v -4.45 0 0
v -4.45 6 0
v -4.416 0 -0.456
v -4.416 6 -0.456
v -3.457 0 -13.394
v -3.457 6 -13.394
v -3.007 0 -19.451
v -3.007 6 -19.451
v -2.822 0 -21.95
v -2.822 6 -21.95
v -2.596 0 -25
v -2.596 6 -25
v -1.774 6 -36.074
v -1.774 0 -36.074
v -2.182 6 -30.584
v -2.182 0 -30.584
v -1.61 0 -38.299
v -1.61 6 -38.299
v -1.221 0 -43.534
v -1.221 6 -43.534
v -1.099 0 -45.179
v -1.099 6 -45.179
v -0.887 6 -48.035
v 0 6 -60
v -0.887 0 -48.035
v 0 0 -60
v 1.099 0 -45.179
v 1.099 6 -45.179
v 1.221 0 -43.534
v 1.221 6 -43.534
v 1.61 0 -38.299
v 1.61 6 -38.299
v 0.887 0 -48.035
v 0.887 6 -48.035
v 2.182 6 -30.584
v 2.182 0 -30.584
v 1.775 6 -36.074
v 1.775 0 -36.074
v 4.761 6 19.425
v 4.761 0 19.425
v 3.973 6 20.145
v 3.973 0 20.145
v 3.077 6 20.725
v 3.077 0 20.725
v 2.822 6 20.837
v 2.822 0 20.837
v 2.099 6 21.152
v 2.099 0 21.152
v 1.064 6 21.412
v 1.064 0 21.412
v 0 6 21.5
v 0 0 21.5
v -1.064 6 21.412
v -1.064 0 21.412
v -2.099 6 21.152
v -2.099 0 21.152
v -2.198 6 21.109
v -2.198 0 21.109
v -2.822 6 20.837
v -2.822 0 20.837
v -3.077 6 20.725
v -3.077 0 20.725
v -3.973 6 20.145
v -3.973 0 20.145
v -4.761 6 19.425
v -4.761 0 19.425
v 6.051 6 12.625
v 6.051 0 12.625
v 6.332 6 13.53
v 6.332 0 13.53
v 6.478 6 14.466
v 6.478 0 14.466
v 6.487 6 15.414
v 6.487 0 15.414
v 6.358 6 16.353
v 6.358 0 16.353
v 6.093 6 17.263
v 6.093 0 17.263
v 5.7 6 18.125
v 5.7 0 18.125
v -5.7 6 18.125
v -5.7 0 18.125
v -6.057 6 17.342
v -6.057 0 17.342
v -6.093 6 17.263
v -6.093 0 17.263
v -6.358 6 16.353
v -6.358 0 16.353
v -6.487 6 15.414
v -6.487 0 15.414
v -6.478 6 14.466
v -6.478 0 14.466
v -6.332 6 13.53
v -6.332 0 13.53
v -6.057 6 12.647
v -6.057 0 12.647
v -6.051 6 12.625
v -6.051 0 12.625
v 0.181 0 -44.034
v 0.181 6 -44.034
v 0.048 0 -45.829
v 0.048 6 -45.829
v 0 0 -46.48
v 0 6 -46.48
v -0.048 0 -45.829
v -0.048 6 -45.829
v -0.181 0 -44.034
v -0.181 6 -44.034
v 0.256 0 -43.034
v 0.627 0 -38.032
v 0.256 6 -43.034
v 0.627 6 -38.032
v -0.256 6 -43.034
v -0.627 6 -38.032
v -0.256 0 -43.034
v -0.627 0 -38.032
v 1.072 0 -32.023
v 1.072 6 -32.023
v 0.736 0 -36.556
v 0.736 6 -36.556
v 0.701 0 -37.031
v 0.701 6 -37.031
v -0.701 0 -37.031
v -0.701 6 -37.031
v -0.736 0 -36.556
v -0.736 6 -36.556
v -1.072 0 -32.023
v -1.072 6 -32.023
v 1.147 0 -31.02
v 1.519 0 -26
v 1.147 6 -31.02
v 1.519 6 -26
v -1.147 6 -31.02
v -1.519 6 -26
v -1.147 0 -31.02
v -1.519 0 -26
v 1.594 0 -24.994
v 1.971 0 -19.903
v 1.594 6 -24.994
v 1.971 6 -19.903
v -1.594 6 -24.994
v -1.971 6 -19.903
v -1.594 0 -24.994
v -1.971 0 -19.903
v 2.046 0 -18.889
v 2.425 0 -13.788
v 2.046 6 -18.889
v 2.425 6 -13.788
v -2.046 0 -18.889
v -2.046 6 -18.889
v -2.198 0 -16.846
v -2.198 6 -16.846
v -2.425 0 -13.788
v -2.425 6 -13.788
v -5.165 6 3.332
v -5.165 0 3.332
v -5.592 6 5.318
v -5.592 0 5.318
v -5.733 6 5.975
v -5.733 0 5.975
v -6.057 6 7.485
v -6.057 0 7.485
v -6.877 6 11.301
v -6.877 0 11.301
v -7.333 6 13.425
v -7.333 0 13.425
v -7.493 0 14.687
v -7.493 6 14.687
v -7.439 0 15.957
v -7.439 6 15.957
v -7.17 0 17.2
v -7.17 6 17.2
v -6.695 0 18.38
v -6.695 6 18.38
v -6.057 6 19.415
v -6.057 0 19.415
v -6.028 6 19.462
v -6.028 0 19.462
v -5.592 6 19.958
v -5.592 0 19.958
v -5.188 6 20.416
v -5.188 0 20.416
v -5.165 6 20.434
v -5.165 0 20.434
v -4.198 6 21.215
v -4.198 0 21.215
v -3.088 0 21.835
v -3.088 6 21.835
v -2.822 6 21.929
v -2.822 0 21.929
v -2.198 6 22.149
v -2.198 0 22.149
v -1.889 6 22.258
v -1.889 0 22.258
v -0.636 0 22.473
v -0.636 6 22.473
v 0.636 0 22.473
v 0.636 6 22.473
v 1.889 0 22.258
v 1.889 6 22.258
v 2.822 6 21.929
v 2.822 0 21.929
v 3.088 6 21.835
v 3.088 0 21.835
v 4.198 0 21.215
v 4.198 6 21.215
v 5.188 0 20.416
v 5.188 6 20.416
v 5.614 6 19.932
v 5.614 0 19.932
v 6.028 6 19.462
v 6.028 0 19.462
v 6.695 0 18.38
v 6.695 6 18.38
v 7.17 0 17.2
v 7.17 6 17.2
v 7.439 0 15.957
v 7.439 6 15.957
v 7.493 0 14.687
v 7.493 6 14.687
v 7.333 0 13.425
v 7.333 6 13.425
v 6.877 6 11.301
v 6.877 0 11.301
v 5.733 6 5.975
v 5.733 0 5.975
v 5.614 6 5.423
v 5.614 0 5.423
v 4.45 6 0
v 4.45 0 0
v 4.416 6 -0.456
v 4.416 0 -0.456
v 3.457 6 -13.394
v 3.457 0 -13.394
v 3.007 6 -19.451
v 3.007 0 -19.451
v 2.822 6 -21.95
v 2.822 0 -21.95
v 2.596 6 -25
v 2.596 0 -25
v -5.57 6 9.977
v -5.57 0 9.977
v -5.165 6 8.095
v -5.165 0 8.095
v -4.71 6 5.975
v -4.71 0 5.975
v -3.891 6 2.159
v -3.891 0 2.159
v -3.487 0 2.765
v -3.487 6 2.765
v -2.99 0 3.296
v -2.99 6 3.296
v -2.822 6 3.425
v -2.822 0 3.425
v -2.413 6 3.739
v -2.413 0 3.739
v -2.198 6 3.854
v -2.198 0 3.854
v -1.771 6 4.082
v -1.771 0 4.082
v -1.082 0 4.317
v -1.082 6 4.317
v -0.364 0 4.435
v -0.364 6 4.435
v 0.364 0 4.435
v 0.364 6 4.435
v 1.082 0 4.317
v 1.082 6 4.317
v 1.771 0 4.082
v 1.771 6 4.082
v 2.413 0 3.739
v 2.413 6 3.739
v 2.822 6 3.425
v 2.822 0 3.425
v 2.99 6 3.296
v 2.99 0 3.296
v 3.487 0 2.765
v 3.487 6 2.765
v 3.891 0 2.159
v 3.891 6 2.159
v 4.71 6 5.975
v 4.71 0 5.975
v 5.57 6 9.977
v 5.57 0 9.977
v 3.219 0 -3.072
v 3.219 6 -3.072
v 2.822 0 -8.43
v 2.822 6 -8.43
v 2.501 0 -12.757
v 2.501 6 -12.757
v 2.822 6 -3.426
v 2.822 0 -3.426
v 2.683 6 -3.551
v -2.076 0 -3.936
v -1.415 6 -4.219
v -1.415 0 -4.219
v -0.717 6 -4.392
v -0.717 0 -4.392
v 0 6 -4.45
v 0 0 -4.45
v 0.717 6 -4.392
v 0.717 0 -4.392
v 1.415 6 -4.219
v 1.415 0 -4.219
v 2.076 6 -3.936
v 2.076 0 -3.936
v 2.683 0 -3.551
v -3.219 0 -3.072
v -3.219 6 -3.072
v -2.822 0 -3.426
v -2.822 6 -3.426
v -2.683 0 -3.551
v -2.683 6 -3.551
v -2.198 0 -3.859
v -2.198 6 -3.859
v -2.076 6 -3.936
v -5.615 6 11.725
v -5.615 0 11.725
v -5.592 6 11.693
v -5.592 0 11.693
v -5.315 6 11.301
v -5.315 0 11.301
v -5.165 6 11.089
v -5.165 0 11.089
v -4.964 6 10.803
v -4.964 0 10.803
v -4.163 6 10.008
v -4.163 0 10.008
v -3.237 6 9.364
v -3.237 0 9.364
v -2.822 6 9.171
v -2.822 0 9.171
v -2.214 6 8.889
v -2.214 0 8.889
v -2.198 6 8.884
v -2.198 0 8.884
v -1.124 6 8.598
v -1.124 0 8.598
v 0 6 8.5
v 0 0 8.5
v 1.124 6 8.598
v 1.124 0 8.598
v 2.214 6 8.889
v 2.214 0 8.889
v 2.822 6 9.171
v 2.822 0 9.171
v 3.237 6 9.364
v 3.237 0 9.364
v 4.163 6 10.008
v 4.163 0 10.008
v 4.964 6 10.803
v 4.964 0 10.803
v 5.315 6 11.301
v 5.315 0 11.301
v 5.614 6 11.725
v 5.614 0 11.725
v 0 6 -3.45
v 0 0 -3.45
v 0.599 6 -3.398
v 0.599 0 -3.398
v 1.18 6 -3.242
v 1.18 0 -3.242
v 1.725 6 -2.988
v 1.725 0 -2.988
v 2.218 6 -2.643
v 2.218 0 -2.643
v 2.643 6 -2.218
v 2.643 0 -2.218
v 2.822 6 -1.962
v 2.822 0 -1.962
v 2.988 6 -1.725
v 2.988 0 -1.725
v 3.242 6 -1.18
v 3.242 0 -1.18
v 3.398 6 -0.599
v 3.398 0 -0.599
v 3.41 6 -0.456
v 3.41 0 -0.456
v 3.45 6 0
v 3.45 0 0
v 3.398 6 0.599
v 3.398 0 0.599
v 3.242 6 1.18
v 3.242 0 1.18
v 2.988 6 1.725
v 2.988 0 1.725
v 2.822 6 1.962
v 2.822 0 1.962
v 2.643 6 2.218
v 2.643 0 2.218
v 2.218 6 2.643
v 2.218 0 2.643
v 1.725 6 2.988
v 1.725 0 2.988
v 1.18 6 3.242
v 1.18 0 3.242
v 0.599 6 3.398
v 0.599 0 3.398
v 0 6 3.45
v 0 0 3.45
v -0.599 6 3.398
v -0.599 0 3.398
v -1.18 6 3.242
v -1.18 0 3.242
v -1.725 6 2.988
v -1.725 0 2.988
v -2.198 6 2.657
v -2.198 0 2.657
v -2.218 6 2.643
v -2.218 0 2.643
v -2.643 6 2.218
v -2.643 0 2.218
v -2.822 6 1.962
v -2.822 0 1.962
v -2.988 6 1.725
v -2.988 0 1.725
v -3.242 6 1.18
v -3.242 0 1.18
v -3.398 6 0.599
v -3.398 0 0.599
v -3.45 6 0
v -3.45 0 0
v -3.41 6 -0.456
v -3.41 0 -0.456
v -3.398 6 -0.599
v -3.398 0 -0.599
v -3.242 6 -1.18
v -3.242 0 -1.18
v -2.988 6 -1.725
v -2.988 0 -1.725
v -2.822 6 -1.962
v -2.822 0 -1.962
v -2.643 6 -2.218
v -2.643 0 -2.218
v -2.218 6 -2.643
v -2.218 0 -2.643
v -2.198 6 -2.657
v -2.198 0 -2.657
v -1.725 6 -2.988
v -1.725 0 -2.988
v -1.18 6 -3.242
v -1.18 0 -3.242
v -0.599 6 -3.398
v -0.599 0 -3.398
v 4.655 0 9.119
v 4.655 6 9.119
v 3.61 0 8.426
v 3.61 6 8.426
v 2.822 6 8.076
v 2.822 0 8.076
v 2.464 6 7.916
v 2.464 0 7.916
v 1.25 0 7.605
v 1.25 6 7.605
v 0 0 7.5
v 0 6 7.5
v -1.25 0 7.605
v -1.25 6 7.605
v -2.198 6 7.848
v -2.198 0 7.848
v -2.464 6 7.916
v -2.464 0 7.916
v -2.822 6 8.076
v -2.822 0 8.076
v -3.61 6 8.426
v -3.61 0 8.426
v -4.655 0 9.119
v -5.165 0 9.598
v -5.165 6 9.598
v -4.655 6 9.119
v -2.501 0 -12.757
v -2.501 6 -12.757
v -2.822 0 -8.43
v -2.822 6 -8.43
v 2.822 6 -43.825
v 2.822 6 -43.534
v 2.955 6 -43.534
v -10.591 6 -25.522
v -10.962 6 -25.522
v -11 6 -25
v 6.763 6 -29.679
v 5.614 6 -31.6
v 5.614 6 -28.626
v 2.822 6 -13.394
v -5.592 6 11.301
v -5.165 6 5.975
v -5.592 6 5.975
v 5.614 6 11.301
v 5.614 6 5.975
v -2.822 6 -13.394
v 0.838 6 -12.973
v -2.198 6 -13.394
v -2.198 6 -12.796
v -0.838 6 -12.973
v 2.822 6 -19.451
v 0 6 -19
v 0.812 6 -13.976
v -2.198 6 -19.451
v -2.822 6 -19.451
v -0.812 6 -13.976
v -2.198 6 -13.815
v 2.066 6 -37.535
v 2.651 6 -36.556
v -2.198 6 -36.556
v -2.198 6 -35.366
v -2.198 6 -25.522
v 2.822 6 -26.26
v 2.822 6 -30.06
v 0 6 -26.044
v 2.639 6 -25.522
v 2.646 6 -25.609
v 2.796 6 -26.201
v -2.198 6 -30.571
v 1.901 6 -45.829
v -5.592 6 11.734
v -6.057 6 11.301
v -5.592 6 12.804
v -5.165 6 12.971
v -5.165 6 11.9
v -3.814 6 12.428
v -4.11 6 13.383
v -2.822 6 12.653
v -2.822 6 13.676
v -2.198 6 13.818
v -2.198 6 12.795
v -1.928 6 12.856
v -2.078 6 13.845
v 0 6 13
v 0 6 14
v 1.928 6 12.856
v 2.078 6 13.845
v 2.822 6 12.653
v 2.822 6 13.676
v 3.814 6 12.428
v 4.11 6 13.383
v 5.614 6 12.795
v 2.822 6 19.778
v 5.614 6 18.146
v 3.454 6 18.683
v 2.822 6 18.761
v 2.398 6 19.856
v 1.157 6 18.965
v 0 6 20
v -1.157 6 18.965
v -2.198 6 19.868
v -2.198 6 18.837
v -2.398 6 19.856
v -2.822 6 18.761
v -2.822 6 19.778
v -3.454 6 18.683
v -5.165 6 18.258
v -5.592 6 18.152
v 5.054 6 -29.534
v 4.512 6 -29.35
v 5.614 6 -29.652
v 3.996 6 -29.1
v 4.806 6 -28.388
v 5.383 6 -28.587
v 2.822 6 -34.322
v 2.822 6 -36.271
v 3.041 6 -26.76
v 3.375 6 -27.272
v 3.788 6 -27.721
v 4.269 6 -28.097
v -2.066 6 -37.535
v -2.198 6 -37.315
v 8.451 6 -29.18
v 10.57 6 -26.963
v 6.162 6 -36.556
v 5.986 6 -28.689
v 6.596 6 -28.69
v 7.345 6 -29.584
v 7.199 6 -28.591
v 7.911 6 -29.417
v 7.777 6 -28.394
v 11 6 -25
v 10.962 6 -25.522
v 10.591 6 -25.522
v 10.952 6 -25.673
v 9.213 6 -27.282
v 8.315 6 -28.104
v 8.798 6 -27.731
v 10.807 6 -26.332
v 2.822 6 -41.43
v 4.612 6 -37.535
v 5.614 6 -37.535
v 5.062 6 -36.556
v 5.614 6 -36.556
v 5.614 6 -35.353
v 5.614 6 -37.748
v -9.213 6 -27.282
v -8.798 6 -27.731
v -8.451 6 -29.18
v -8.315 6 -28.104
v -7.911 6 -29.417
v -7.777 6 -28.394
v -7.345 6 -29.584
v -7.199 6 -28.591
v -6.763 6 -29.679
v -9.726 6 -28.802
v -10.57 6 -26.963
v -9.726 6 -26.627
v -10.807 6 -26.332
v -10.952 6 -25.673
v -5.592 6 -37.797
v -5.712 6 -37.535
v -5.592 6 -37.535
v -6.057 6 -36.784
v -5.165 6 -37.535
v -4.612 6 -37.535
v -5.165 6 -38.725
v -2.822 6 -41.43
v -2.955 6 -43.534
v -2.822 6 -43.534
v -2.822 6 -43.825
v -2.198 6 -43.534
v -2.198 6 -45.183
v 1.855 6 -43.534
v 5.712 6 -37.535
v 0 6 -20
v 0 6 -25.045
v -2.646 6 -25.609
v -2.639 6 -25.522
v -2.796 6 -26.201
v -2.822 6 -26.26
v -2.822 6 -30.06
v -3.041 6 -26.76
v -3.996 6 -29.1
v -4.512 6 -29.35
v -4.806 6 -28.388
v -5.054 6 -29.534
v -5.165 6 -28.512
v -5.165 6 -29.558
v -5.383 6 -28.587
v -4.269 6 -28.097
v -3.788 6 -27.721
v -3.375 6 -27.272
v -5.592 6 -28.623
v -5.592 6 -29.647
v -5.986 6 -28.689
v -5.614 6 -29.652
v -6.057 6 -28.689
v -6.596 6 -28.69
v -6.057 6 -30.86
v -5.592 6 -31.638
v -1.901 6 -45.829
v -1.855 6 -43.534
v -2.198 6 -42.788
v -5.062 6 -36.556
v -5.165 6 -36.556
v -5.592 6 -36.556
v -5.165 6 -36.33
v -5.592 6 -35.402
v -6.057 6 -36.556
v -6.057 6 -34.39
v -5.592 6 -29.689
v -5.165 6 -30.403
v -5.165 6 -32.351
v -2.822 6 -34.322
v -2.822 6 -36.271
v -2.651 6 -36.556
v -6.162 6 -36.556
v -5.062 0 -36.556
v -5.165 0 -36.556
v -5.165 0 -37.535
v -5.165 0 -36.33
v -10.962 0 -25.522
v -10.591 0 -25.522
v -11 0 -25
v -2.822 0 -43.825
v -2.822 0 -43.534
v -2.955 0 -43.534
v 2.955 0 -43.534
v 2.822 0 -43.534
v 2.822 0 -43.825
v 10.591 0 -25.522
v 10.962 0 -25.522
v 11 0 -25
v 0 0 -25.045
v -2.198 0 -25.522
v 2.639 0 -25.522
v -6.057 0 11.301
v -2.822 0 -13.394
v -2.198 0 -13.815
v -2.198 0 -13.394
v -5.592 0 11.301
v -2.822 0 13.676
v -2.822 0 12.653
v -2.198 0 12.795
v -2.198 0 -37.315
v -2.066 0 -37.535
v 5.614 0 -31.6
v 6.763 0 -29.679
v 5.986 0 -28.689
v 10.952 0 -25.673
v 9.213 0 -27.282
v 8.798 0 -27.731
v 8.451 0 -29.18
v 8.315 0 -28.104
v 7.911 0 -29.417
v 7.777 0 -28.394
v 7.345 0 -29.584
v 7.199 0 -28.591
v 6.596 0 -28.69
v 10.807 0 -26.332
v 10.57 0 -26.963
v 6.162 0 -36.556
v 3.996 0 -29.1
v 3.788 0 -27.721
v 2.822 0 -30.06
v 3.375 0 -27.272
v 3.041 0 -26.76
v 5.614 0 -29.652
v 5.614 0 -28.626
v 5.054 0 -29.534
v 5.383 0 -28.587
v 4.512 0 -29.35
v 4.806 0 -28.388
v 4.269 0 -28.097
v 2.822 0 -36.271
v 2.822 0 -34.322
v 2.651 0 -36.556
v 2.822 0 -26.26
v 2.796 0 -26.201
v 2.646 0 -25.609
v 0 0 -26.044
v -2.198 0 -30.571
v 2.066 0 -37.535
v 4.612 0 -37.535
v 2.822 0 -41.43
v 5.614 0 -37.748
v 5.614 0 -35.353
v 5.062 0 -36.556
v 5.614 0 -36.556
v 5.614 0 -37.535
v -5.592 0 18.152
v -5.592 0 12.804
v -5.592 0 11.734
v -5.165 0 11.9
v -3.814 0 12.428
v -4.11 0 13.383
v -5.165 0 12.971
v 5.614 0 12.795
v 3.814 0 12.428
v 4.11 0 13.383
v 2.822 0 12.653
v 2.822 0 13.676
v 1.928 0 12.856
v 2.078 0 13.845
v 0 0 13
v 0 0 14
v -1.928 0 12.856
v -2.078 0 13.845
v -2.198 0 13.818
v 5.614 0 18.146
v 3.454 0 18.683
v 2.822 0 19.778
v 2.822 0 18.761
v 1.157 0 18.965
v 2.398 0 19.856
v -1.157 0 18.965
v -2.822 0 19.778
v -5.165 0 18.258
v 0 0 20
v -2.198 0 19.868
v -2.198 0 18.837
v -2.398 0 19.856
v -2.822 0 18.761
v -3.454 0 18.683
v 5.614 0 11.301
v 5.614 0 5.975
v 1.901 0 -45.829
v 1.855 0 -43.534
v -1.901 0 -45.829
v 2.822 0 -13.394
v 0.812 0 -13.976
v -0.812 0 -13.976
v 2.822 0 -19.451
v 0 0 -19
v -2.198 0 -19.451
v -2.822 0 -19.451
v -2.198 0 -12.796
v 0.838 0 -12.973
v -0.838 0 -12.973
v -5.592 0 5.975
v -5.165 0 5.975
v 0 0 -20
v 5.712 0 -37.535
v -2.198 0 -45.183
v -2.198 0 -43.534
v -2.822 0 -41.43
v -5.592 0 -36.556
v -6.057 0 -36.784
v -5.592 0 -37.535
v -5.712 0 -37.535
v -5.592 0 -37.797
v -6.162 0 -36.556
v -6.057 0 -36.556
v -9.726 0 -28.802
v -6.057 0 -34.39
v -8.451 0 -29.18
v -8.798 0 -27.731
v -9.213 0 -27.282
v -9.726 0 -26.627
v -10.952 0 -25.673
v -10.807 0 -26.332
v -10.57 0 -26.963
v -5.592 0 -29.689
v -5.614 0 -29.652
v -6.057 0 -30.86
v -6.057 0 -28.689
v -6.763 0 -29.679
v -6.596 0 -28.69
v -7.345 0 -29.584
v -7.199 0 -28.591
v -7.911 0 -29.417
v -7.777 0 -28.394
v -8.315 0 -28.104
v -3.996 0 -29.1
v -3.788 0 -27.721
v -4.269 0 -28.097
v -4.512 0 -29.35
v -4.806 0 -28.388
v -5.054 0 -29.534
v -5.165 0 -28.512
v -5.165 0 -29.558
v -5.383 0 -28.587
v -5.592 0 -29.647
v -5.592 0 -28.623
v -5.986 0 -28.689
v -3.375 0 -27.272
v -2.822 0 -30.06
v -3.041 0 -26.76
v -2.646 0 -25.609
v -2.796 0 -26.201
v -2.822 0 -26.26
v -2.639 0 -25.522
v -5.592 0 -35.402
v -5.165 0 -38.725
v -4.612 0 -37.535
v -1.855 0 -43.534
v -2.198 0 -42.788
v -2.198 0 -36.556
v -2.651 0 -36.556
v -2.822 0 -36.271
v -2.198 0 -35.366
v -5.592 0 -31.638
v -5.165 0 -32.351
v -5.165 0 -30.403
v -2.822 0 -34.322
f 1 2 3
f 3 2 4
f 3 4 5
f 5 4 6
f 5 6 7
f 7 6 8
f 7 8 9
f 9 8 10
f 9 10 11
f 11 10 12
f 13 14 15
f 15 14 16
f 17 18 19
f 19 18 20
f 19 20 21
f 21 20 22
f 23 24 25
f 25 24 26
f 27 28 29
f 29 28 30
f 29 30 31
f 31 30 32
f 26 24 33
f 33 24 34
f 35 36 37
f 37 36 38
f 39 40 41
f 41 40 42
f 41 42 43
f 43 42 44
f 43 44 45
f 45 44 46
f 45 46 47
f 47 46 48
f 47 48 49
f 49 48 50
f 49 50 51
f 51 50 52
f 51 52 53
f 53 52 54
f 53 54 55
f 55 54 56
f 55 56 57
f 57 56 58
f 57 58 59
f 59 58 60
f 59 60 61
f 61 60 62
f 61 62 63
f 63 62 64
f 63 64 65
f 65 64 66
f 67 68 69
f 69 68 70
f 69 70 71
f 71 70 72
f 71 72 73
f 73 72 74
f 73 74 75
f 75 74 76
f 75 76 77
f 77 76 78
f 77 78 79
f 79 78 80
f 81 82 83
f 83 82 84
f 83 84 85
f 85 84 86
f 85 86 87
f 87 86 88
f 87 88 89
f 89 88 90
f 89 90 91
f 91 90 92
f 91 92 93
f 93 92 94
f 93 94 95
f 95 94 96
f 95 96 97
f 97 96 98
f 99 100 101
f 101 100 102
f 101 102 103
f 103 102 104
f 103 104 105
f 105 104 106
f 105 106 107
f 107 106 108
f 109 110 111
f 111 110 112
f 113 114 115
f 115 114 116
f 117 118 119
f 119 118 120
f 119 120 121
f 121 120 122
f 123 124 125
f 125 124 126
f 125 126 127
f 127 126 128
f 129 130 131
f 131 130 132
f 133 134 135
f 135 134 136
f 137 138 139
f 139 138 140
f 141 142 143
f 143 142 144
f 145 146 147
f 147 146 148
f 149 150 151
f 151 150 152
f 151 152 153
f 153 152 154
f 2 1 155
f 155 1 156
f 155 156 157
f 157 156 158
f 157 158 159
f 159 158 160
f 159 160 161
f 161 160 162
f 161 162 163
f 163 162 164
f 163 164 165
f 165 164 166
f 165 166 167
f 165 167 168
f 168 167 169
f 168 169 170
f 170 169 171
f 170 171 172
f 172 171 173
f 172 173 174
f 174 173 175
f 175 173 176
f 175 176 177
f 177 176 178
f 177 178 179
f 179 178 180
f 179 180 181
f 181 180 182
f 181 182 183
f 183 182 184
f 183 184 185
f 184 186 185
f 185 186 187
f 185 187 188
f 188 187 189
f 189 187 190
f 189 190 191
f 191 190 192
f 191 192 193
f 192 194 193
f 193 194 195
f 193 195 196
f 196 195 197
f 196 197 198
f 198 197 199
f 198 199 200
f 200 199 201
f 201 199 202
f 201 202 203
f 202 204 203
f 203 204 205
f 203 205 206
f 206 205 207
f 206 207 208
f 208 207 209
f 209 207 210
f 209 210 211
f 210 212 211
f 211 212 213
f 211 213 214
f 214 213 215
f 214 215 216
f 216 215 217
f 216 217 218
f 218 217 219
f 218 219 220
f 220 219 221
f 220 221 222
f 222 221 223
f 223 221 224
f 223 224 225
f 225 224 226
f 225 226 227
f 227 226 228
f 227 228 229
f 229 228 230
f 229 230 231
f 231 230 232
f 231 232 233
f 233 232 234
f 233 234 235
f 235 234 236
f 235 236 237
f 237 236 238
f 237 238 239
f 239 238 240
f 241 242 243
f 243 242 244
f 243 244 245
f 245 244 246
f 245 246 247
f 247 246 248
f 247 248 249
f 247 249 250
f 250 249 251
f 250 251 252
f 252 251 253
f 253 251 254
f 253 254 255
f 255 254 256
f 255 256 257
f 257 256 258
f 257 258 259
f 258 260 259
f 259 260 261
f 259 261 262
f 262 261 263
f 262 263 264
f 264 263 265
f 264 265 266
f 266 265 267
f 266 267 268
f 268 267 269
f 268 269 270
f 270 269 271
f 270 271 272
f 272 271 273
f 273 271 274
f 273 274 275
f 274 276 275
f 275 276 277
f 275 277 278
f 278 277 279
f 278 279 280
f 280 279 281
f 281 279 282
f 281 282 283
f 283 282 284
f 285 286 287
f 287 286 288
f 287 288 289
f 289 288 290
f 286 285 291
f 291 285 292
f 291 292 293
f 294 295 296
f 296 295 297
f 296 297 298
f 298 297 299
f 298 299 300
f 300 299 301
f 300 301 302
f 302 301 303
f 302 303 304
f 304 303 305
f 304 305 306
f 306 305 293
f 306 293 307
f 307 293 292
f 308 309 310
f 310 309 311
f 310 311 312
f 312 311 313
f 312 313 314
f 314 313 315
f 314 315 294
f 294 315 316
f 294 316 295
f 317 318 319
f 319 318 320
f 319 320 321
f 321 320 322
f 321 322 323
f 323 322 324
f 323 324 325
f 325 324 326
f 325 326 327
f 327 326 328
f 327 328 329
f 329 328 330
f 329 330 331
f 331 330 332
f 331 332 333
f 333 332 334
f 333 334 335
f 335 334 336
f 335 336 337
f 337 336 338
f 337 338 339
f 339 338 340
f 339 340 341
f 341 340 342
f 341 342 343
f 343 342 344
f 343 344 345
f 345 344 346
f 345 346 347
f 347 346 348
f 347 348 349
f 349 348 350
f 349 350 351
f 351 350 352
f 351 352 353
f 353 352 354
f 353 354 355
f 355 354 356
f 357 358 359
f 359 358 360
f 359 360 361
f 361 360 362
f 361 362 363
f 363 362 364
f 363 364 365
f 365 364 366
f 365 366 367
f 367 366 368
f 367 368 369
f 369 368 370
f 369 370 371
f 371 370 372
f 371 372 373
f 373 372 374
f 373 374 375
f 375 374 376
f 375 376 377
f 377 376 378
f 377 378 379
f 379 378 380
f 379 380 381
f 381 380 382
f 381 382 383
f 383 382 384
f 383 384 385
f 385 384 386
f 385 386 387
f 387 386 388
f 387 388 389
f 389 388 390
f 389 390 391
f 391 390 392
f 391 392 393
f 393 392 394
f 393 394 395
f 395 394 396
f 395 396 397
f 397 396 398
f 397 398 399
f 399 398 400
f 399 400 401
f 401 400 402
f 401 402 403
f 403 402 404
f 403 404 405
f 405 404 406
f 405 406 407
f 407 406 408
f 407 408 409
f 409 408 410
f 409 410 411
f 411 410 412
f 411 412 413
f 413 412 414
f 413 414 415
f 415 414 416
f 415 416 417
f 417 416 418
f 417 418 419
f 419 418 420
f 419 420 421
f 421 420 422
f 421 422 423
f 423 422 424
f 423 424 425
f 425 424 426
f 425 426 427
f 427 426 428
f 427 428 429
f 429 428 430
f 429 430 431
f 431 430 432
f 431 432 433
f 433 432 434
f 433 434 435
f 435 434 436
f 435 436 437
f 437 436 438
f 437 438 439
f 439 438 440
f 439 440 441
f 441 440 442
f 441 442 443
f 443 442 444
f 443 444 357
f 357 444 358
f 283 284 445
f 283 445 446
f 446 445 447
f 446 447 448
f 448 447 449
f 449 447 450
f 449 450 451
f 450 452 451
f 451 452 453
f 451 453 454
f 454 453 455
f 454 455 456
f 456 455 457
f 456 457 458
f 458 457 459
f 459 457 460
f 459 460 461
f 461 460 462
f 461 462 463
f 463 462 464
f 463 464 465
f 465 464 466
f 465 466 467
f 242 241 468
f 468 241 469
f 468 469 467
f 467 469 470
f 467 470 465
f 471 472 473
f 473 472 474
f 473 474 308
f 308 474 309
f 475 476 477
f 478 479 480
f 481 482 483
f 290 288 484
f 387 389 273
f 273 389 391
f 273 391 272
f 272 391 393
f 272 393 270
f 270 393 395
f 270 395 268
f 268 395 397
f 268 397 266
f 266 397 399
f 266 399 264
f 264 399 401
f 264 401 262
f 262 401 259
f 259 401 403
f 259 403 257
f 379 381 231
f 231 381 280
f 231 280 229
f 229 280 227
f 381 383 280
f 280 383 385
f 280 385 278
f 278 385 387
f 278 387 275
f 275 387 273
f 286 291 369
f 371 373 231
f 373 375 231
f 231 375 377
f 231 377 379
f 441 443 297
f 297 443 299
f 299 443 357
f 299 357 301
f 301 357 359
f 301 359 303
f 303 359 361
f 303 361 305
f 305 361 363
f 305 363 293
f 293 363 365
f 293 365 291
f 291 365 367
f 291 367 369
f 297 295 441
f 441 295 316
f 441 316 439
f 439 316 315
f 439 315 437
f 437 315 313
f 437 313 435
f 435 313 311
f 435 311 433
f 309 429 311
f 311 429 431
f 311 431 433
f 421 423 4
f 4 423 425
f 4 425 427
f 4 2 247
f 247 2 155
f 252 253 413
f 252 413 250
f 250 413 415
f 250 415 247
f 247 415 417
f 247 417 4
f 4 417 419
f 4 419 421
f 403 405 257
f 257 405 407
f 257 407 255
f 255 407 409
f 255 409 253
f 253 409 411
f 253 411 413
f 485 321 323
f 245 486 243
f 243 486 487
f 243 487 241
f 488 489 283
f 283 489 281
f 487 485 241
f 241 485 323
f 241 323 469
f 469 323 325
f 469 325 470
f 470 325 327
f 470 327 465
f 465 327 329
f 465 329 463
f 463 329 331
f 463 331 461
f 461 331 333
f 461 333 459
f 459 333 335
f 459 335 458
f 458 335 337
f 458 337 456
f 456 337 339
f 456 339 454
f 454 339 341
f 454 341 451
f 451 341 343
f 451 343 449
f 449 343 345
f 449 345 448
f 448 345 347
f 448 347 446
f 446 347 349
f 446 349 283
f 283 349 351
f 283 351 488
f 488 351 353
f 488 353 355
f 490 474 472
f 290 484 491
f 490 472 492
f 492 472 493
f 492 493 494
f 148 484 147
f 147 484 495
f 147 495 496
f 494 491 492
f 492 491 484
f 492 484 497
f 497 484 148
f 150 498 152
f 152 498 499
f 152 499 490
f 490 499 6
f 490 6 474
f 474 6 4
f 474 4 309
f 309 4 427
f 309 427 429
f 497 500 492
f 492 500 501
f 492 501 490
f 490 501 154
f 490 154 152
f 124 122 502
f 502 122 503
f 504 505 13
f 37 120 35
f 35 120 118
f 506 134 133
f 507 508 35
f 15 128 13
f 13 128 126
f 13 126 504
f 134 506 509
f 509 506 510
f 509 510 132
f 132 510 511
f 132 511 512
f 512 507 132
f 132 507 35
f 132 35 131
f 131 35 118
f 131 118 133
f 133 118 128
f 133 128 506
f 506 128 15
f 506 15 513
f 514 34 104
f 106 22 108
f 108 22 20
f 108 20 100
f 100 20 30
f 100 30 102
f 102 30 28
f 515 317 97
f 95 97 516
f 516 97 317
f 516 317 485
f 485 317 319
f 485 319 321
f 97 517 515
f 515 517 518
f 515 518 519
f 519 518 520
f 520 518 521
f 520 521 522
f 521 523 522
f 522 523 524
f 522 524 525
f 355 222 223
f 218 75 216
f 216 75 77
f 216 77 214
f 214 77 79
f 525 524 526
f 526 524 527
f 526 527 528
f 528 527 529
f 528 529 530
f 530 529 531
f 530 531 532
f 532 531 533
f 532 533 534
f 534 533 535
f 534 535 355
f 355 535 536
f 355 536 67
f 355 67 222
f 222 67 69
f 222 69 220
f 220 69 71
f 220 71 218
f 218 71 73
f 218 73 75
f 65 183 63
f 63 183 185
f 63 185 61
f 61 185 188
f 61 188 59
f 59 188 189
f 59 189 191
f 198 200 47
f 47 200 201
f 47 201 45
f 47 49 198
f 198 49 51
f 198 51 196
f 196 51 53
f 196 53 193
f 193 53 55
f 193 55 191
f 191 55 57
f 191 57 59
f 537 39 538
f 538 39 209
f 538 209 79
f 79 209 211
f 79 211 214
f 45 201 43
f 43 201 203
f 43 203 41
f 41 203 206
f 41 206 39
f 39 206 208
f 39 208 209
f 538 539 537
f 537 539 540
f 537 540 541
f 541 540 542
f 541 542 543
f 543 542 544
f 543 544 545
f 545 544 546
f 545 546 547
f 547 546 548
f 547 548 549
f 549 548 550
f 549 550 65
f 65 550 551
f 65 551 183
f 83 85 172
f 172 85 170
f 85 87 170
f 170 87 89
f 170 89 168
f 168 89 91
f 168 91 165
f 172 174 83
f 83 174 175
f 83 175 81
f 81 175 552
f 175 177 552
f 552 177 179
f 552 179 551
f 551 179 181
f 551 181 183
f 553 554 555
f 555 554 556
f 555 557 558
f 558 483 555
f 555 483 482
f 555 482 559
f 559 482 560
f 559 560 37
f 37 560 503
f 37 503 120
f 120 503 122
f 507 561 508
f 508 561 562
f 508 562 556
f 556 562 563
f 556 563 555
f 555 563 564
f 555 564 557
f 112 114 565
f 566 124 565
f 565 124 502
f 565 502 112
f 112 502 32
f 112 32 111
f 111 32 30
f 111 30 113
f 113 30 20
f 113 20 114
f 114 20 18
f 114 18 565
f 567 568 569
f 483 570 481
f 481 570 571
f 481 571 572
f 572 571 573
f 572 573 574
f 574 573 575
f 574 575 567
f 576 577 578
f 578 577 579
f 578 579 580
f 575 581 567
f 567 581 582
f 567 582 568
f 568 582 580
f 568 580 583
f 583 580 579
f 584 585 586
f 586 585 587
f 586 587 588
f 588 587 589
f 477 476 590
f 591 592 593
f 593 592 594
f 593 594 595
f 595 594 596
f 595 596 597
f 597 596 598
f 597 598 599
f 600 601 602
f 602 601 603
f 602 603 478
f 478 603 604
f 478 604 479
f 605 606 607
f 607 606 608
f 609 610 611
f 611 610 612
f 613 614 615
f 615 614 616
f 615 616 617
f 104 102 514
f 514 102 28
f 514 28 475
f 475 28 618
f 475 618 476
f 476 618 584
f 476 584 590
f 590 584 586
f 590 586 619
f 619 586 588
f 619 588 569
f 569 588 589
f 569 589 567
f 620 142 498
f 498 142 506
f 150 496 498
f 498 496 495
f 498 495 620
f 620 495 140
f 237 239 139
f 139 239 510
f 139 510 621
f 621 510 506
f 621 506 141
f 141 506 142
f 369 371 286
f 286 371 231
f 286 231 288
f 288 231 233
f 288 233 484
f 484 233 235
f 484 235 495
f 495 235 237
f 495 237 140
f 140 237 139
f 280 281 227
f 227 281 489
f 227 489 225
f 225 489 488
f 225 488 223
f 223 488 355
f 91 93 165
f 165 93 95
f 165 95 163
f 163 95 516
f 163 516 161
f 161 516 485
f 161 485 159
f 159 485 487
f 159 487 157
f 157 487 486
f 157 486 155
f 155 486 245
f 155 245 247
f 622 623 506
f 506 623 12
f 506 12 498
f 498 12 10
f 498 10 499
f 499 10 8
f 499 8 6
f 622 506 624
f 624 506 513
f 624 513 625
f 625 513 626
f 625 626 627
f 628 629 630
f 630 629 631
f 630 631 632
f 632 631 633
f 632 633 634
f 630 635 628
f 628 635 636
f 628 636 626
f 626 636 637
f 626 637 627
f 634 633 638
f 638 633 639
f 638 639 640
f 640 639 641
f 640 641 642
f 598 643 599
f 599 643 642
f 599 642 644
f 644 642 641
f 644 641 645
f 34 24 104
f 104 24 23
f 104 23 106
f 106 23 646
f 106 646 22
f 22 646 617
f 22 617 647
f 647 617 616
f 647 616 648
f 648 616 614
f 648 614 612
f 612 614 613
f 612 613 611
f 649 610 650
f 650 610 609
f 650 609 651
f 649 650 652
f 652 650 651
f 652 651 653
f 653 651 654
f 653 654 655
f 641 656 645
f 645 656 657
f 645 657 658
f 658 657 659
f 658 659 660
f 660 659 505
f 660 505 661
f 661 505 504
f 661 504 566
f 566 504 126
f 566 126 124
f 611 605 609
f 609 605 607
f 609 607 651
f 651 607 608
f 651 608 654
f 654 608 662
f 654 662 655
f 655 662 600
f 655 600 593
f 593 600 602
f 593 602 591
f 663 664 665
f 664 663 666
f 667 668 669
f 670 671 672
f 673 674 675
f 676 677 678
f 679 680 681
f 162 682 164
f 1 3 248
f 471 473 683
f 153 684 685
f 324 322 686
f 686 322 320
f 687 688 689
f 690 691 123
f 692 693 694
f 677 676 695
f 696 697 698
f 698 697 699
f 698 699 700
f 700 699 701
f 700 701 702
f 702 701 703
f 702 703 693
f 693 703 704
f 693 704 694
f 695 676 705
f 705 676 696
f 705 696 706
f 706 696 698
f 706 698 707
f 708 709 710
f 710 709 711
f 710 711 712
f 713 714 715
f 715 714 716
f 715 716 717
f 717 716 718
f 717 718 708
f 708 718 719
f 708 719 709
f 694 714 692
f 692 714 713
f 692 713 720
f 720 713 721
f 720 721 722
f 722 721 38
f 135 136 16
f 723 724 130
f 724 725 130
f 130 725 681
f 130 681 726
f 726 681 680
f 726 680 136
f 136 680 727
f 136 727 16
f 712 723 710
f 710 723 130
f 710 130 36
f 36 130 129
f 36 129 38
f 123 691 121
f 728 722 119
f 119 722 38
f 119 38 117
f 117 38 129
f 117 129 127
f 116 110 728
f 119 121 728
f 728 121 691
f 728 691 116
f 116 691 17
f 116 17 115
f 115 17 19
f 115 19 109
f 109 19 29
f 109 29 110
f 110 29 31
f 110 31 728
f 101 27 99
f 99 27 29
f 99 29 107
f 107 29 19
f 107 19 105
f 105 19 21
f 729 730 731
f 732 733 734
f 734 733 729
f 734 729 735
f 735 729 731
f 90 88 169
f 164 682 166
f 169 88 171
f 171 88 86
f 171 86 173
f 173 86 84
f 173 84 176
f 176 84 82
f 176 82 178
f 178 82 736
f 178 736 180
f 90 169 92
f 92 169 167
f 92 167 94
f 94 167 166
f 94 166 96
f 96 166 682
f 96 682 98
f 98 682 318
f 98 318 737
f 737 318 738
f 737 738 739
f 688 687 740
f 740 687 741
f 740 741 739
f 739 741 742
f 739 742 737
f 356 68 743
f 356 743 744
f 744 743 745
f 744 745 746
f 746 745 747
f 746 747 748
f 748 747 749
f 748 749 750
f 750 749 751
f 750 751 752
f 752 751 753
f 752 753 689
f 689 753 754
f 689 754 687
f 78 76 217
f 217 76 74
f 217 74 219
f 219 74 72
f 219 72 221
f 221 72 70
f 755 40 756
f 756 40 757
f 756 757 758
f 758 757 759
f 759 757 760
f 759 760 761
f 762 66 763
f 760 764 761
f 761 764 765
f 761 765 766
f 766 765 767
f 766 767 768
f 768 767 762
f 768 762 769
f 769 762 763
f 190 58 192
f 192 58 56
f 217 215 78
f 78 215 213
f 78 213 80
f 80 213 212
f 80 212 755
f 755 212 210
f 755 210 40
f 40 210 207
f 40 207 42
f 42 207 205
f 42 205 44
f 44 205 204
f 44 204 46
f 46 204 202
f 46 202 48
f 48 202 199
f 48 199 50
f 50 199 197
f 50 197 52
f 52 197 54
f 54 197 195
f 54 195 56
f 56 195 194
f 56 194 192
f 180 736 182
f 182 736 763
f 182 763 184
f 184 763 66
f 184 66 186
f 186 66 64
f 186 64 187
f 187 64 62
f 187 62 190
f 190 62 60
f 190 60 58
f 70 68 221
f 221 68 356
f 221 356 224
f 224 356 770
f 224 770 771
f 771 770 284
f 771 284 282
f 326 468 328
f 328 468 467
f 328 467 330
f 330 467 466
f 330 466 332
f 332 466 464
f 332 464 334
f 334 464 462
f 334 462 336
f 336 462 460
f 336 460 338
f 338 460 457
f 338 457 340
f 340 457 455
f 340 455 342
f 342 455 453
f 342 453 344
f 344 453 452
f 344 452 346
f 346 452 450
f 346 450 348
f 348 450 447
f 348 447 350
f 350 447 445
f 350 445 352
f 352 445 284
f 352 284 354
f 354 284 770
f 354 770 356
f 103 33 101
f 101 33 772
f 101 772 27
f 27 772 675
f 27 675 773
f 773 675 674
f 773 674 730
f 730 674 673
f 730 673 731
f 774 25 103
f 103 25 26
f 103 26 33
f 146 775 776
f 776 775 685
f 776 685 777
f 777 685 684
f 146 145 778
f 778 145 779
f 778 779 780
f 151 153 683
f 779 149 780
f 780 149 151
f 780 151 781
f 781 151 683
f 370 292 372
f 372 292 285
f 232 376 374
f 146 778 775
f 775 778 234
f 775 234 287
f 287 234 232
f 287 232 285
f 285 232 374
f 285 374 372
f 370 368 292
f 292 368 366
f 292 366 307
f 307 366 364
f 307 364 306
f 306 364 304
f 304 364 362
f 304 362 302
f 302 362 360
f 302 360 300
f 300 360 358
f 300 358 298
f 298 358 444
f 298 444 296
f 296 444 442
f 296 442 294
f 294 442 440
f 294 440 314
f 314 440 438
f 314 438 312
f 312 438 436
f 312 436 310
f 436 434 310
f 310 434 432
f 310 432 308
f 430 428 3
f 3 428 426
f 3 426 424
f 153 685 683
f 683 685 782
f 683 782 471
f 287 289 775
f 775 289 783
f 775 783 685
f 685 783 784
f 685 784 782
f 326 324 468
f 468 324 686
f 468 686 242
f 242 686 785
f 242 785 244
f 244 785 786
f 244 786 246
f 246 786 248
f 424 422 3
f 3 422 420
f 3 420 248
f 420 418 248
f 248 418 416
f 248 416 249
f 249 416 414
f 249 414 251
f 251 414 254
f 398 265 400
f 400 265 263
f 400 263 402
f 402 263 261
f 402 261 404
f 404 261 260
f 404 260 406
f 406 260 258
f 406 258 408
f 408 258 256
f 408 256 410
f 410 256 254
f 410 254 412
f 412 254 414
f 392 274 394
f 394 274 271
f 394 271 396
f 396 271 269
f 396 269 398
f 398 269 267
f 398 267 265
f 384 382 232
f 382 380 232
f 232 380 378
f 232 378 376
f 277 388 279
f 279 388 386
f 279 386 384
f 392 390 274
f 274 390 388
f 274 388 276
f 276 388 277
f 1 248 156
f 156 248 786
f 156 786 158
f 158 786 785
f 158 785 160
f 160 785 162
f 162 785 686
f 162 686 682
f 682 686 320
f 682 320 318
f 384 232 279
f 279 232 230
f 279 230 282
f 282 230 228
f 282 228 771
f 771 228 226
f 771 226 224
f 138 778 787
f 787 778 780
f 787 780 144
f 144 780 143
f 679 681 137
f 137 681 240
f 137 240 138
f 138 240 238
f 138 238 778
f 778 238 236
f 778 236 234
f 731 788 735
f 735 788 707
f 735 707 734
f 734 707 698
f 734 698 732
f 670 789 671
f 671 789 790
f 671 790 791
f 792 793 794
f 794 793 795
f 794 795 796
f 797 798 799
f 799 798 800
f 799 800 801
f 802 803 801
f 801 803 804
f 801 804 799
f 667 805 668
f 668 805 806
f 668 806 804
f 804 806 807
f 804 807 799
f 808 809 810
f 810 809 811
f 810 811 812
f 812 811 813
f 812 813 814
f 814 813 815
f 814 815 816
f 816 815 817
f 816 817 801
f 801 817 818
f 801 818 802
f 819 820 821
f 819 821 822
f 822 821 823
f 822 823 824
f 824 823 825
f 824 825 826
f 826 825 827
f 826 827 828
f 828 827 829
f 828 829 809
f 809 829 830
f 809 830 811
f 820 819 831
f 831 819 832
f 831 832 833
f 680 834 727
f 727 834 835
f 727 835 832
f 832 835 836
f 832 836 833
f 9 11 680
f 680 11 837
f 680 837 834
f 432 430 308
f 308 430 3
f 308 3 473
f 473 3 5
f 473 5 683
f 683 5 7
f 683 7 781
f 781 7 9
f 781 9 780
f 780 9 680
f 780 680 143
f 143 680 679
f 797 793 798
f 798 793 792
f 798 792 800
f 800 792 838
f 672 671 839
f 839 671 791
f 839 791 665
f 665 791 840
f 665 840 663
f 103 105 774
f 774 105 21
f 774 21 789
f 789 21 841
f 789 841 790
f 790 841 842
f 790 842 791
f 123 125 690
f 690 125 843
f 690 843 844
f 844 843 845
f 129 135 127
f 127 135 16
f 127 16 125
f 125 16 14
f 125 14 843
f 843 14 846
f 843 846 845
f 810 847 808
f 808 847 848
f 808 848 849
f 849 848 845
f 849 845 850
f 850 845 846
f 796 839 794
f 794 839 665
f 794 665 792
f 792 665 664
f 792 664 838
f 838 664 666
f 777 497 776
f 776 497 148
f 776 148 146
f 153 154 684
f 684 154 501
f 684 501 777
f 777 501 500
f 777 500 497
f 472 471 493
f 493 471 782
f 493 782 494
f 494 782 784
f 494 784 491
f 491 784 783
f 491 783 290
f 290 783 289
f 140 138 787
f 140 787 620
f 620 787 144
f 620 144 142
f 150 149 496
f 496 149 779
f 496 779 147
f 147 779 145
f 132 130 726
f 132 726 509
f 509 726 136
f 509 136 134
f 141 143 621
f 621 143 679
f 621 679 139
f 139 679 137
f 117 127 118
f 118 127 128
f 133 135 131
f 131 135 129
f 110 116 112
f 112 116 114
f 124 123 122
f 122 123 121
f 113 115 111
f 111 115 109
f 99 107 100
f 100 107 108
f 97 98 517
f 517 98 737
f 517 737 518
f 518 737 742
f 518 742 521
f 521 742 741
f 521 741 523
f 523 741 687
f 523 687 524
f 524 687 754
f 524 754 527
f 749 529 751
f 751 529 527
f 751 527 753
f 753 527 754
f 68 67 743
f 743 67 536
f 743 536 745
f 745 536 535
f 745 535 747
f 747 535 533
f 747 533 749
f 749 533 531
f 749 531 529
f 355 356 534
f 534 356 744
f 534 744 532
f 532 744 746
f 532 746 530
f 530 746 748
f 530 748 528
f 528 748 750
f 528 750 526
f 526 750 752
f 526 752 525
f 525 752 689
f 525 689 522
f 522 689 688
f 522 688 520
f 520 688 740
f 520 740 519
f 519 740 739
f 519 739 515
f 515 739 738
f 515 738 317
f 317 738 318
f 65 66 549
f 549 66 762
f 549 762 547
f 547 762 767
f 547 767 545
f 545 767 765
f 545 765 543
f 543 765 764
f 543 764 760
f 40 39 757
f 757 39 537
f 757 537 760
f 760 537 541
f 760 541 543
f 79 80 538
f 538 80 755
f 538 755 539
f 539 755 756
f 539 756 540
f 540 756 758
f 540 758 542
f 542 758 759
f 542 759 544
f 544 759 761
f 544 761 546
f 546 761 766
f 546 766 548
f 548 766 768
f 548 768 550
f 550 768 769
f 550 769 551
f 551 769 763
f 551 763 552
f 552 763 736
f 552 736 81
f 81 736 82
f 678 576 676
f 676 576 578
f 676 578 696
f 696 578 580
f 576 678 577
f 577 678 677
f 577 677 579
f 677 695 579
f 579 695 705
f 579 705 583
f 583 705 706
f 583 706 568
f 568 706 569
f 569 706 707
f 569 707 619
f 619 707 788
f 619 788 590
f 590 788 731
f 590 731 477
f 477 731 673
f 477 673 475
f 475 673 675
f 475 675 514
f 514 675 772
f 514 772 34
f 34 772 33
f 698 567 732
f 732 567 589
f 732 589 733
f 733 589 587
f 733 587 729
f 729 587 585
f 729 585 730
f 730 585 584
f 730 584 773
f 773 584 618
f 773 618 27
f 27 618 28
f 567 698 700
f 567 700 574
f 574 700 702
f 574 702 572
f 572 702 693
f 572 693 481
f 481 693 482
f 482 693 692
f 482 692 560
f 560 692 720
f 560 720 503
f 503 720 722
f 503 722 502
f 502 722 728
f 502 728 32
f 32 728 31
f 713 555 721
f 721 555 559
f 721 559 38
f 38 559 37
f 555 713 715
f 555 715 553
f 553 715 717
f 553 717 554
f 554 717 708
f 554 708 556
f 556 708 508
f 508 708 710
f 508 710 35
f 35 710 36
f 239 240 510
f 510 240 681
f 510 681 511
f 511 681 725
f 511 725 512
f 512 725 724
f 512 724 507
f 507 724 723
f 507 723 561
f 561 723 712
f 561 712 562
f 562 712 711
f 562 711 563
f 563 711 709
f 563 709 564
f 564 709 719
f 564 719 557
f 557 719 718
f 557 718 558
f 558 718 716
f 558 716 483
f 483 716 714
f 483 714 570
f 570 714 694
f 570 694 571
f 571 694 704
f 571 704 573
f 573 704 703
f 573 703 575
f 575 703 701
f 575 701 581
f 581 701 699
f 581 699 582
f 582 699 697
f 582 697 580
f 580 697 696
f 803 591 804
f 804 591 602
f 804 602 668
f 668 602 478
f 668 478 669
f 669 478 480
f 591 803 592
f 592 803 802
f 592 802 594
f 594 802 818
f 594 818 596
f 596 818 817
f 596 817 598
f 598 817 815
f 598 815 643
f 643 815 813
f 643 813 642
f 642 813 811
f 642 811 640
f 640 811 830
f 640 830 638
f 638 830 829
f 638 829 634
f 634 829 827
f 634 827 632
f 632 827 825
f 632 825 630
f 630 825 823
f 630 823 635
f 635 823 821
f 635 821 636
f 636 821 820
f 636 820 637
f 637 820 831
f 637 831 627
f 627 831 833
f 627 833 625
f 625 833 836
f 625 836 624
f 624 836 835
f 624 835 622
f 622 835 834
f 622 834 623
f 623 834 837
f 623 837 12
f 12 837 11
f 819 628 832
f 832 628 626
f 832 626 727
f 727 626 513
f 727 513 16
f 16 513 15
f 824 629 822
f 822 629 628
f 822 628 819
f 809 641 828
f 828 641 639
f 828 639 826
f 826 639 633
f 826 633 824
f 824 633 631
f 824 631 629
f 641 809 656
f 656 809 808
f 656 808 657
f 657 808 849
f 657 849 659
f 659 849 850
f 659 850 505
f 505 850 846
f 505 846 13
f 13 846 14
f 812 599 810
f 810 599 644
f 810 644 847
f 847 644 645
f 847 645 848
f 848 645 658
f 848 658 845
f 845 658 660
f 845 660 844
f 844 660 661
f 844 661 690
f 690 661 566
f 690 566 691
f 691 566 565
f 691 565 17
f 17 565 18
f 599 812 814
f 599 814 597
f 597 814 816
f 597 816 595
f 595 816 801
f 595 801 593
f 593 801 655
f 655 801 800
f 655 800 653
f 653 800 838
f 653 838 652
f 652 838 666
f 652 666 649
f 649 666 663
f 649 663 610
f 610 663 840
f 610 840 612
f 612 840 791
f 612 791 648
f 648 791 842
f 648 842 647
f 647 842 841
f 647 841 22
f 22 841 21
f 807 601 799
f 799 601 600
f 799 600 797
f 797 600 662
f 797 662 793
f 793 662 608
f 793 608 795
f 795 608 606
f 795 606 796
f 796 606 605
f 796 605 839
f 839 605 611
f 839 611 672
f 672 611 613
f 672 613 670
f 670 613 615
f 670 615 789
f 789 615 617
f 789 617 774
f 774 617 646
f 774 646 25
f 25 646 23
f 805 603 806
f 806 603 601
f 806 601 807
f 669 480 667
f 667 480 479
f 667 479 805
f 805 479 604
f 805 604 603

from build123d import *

# Parameters (mm, degrees)
SKETCH1_R           = 3.45
SKETCH1_R_2         = 6.5
BOSS_EXTRUDE1_DEPTH = 6
BOSS_EXTRUDE2_DEPTH = 6
BOSS_EXTRUDE4_DEPTH = 6


with BuildPart() as part:
    # Sketch1 → Boss-Extrude1 (new body)
    with BuildSketch(Plane(origin=(0, 0, 0), x_dir=(1, 0, 0), z_dir=(0, 1, 0))):
        with BuildLine():
            Line((-4.45, 0), (0, 60))
            Line((0, 60), (4.45, 0))
            Line((4.45, 0), (7.332848837, -13.425411822))
            ThreePointArc((7.332848837, -13.425411822), (0, -22.5), (-7.332848837, -13.425411822))
            Line((-7.332848837, -13.425411822), (-4.45, 0))
        make_face()
        with Locations(Location((0, 0, 0), (0, 0, 270))):
            Circle(SKETCH1_R, mode=Mode.SUBTRACT)
        with Locations(Location((0, -15, 0), (0, 0, 270))):
            Circle(SKETCH1_R_2, mode=Mode.SUBTRACT)
        with BuildLine():
            Line((-5.56959306, -9.977089176), (-3.890910153, -2.159471736))
            ThreePointArc((-3.890910153, -2.159471736), (0, -4.45), (3.890910153, -2.159471736))
            Line((3.890910153, -2.159471736), (5.56959306, -9.977089176))
            ThreePointArc((5.56959306, -9.977089176), (0, -7.5), (-5.56959306, -9.977089176))
        make_face(mode=Mode.SUBTRACT)
        with BuildLine():
            Line((-3.219404352, 3.072122332), (0, 46.479821455))
            Line((0, 46.479821455), (3.219404352, 3.072122332))
            ThreePointArc((3.219404352, 3.072122332), (0, 4.45), (-3.219404352, 3.072122332))
        make_face(mode=Mode.SUBTRACT)
    extrude(amount=BOSS_EXTRUDE1_DEPTH)

    # Sketch3 → Boss-Extrude2 (add)
    with BuildSketch(Plane(origin=(0, 0, 0), x_dir=(1, 0, 0), z_dir=(0, 1, 0))):
        with BuildLine():
            Line((-2.424610287, 13.788446793), (-2.501099218, 12.757135364))
            ThreePointArc((-2.501099218, 12.757135364), (0, 13), (2.501099218, 12.757135364))
            Line((2.501099218, 12.757135364), (2.424610287, 13.788446793))
            ThreePointArc((2.424610287, 13.788446793), (0, 14), (-2.424610287, 13.788446793))
        make_face()
        with BuildLine():
            Line((-1.971141851, 19.902627962), (-2.046283127, 18.889487165))
            ThreePointArc((-2.046283127, 18.889487165), (0, 19), (2.046283127, 18.889487165))
            Line((2.046283127, 18.889487165), (1.971141851, 19.902627962))
            ThreePointArc((1.971141851, 19.902627962), (0, 20), (-1.971141851, 19.902627962))
        make_face()
        with BuildLine():
            Line((-1.518937845, 25.999760627), (-1.593540779, 24.993878368))
            ThreePointArc((-1.593540779, 24.993878368), (0, 25.044626731), (1.593540779, 24.993878368))
            Line((1.593540779, 24.993878368), (1.518937845, 25.999760627))
            ThreePointArc((1.518937845, 25.999760627), (0, 26.044091937), (-1.518937845, 25.999760627))
        make_face()
        with BuildLine():
            Line((-1.072221947, 32.022896321), (-1.146588325, 31.020203596))
            ThreePointArc((-1.146588325, 31.020203596), (0, 31.041386823), (1.146588325, 31.020203596))
            Line((1.146588325, 31.020203596), (1.072221947, 32.022896321))
            ThreePointArc((1.072221947, 32.022896321), (0, 32.040841885), (-1.072221947, 32.022896321))
        make_face()
        with BuildLine():
            Line((-0.626517111, 38.032399738), (-0.700752129, 37.031478145))
            ThreePointArc((-0.700752129, 37.031478145), (0, 37.038107769), (0.700752129, 37.031478145))
            Line((0.700752129, 37.031478145), (0.626517111, 38.032399738))
            ThreePointArc((0.626517111, 38.032399738), (0, 38.037559774), (-0.626517111, 38.032399738))
        make_face()
        with BuildLine():
            Line((-0.181406226, 44.033894812), (-0.255560758, 43.034058423))
            ThreePointArc((-0.255560758, 43.034058423), (0, 43.034817249), (0.255560758, 43.034058423))
            Line((0.255560758, 43.034058423), (0.181406226, 44.033894812))
            ThreePointArc((0.181406226, 44.033894812), (0, 44.034268479), (-0.181406226, 44.033894812))
        make_face()
        with BuildLine():
            ThreePointArc((4.761236709, -19.425), (5.270605983, -18.804038982), (5.699506558, -18.125))
            ThreePointArc((5.699506558, -18.125), (0, -19), (-5.699506558, -18.125))
            ThreePointArc((-5.699506558, -18.125), (-5.270605983, -18.804038982), (-4.761236709, -19.425))
            ThreePointArc((-4.761236709, -19.425), (0, -20), (4.761236709, -19.425))
        make_face()
        with BuildLine():
            ThreePointArc((-5.614657158, -11.725), (-5.849946188, -12.166604581), (-6.050568155, -12.625))
            ThreePointArc((-6.050568155, -12.625), (0, -14), (6.050568155, -12.625))
            ThreePointArc((6.050568155, -12.625), (5.849946188, -12.166604581), (5.614657158, -11.725))
            ThreePointArc((5.614657158, -11.725), (0, -13), (-5.614657158, -11.725))
        make_face()
    extrude(amount=BOSS_EXTRUDE2_DEPTH)

    # Sketch5 → Boss-Extrude4 (add)
    with BuildSketch(Plane(origin=(0, 0, 0), x_dir=(1, 0, 0), z_dir=(0, 1, 0))):
        with BuildLine():
            Line((9.212671688, 27.282460114), (11, 25))
            ThreePointArc((11, 25), (10.891360502, 26.004918608), (10.570462139, 26.963400841))
            ThreePointArc((10.570462139, 26.963400841), (9.696667899, 28.24931958), (8.451309377, 29.180010468))
            ThreePointArc((8.451309377, 29.180010468), (7.63085583, 29.509197363), (6.763286857, 29.67899757))
            ThreePointArc((6.763286857, 29.67899757), (6.1879429, 29.700797107), (5.614247813, 29.652116139))
            ThreePointArc((5.614247813, 29.652116139), (4.779917704, 29.450310868), (3.996176977, 29.100192931))
            ThreePointArc((3.996176977, 29.100192931), (3.558596441, 28.82174206), (3.154345742, 28.496791317))
            ThreePointArc((3.154345742, 28.496791317), (2.463689343, 27.721817132), (1.959907971, 26.814185279))
            Line((1.959907971, 26.814185279), (2.094460046, 25))
            Line((2.094460046, 25), (2.595833333, 25))
            ThreePointArc((2.595833333, 25), (5.090697751, 28.499720488), (9.212671688, 27.282460114))
        make_face()
        with BuildLine():
            Line((1.647961612, 31.020203596), (1.749949079, 29.645091687))
            Line((1.749949079, 29.645091687), (3.154345742, 28.496791317))
            ThreePointArc((3.154345742, 28.496791317), (3.558596441, 28.82174206), (3.996176977, 29.100192931))
            Line((3.996176977, 29.100192931), (1.647961612, 31.020203596))
        make_face()
        with BuildLine():
            ThreePointArc((5.614247813, 29.652116139), (6.1879429, 29.700797107), (6.763286857, 29.67899757))
            Line((6.763286857, 29.67899757), (1.037132306, 39.256104353))
            Line((1.037132306, 39.256104353), (1.202125417, 37.031478145))
            Line((1.202125417, 37.031478145), (5.614247813, 29.652116139))
        make_face()
        with BuildLine():
            ThreePointArc((8.451309377, 29.180010468), (9.696667899, 28.24931958), (10.570462139, 26.963400841))
            Line((10.570462139, 26.963400841), (0.289570354, 49.335591342))
            Line((0.289570354, 49.335591342), (0.501373288, 46.479821455))
            Line((0.501373288, 46.479821455), (8.451309377, 29.180010468))
        make_face()
        with BuildLine():
            Line((1.749949079, 29.645091687), (1.959907971, 26.814185279))
            ThreePointArc((1.959907971, 26.814185279), (2.463689343, 27.721817132), (3.154345742, 28.496791317))
            Line((3.154345742, 28.496791317), (1.749949079, 29.645091687))
        make_face()
    boss_extrude4 = extrude(amount=BOSS_EXTRUDE4_DEPTH)

    # Mirror1: Boss-Extrude4 across plane
    add(boss_extrude4.mirror(Plane(origin=(0, 0, 0), x_dir=(0, 0, 1), z_dir=(1, 0, 0))))


solid = part.part
